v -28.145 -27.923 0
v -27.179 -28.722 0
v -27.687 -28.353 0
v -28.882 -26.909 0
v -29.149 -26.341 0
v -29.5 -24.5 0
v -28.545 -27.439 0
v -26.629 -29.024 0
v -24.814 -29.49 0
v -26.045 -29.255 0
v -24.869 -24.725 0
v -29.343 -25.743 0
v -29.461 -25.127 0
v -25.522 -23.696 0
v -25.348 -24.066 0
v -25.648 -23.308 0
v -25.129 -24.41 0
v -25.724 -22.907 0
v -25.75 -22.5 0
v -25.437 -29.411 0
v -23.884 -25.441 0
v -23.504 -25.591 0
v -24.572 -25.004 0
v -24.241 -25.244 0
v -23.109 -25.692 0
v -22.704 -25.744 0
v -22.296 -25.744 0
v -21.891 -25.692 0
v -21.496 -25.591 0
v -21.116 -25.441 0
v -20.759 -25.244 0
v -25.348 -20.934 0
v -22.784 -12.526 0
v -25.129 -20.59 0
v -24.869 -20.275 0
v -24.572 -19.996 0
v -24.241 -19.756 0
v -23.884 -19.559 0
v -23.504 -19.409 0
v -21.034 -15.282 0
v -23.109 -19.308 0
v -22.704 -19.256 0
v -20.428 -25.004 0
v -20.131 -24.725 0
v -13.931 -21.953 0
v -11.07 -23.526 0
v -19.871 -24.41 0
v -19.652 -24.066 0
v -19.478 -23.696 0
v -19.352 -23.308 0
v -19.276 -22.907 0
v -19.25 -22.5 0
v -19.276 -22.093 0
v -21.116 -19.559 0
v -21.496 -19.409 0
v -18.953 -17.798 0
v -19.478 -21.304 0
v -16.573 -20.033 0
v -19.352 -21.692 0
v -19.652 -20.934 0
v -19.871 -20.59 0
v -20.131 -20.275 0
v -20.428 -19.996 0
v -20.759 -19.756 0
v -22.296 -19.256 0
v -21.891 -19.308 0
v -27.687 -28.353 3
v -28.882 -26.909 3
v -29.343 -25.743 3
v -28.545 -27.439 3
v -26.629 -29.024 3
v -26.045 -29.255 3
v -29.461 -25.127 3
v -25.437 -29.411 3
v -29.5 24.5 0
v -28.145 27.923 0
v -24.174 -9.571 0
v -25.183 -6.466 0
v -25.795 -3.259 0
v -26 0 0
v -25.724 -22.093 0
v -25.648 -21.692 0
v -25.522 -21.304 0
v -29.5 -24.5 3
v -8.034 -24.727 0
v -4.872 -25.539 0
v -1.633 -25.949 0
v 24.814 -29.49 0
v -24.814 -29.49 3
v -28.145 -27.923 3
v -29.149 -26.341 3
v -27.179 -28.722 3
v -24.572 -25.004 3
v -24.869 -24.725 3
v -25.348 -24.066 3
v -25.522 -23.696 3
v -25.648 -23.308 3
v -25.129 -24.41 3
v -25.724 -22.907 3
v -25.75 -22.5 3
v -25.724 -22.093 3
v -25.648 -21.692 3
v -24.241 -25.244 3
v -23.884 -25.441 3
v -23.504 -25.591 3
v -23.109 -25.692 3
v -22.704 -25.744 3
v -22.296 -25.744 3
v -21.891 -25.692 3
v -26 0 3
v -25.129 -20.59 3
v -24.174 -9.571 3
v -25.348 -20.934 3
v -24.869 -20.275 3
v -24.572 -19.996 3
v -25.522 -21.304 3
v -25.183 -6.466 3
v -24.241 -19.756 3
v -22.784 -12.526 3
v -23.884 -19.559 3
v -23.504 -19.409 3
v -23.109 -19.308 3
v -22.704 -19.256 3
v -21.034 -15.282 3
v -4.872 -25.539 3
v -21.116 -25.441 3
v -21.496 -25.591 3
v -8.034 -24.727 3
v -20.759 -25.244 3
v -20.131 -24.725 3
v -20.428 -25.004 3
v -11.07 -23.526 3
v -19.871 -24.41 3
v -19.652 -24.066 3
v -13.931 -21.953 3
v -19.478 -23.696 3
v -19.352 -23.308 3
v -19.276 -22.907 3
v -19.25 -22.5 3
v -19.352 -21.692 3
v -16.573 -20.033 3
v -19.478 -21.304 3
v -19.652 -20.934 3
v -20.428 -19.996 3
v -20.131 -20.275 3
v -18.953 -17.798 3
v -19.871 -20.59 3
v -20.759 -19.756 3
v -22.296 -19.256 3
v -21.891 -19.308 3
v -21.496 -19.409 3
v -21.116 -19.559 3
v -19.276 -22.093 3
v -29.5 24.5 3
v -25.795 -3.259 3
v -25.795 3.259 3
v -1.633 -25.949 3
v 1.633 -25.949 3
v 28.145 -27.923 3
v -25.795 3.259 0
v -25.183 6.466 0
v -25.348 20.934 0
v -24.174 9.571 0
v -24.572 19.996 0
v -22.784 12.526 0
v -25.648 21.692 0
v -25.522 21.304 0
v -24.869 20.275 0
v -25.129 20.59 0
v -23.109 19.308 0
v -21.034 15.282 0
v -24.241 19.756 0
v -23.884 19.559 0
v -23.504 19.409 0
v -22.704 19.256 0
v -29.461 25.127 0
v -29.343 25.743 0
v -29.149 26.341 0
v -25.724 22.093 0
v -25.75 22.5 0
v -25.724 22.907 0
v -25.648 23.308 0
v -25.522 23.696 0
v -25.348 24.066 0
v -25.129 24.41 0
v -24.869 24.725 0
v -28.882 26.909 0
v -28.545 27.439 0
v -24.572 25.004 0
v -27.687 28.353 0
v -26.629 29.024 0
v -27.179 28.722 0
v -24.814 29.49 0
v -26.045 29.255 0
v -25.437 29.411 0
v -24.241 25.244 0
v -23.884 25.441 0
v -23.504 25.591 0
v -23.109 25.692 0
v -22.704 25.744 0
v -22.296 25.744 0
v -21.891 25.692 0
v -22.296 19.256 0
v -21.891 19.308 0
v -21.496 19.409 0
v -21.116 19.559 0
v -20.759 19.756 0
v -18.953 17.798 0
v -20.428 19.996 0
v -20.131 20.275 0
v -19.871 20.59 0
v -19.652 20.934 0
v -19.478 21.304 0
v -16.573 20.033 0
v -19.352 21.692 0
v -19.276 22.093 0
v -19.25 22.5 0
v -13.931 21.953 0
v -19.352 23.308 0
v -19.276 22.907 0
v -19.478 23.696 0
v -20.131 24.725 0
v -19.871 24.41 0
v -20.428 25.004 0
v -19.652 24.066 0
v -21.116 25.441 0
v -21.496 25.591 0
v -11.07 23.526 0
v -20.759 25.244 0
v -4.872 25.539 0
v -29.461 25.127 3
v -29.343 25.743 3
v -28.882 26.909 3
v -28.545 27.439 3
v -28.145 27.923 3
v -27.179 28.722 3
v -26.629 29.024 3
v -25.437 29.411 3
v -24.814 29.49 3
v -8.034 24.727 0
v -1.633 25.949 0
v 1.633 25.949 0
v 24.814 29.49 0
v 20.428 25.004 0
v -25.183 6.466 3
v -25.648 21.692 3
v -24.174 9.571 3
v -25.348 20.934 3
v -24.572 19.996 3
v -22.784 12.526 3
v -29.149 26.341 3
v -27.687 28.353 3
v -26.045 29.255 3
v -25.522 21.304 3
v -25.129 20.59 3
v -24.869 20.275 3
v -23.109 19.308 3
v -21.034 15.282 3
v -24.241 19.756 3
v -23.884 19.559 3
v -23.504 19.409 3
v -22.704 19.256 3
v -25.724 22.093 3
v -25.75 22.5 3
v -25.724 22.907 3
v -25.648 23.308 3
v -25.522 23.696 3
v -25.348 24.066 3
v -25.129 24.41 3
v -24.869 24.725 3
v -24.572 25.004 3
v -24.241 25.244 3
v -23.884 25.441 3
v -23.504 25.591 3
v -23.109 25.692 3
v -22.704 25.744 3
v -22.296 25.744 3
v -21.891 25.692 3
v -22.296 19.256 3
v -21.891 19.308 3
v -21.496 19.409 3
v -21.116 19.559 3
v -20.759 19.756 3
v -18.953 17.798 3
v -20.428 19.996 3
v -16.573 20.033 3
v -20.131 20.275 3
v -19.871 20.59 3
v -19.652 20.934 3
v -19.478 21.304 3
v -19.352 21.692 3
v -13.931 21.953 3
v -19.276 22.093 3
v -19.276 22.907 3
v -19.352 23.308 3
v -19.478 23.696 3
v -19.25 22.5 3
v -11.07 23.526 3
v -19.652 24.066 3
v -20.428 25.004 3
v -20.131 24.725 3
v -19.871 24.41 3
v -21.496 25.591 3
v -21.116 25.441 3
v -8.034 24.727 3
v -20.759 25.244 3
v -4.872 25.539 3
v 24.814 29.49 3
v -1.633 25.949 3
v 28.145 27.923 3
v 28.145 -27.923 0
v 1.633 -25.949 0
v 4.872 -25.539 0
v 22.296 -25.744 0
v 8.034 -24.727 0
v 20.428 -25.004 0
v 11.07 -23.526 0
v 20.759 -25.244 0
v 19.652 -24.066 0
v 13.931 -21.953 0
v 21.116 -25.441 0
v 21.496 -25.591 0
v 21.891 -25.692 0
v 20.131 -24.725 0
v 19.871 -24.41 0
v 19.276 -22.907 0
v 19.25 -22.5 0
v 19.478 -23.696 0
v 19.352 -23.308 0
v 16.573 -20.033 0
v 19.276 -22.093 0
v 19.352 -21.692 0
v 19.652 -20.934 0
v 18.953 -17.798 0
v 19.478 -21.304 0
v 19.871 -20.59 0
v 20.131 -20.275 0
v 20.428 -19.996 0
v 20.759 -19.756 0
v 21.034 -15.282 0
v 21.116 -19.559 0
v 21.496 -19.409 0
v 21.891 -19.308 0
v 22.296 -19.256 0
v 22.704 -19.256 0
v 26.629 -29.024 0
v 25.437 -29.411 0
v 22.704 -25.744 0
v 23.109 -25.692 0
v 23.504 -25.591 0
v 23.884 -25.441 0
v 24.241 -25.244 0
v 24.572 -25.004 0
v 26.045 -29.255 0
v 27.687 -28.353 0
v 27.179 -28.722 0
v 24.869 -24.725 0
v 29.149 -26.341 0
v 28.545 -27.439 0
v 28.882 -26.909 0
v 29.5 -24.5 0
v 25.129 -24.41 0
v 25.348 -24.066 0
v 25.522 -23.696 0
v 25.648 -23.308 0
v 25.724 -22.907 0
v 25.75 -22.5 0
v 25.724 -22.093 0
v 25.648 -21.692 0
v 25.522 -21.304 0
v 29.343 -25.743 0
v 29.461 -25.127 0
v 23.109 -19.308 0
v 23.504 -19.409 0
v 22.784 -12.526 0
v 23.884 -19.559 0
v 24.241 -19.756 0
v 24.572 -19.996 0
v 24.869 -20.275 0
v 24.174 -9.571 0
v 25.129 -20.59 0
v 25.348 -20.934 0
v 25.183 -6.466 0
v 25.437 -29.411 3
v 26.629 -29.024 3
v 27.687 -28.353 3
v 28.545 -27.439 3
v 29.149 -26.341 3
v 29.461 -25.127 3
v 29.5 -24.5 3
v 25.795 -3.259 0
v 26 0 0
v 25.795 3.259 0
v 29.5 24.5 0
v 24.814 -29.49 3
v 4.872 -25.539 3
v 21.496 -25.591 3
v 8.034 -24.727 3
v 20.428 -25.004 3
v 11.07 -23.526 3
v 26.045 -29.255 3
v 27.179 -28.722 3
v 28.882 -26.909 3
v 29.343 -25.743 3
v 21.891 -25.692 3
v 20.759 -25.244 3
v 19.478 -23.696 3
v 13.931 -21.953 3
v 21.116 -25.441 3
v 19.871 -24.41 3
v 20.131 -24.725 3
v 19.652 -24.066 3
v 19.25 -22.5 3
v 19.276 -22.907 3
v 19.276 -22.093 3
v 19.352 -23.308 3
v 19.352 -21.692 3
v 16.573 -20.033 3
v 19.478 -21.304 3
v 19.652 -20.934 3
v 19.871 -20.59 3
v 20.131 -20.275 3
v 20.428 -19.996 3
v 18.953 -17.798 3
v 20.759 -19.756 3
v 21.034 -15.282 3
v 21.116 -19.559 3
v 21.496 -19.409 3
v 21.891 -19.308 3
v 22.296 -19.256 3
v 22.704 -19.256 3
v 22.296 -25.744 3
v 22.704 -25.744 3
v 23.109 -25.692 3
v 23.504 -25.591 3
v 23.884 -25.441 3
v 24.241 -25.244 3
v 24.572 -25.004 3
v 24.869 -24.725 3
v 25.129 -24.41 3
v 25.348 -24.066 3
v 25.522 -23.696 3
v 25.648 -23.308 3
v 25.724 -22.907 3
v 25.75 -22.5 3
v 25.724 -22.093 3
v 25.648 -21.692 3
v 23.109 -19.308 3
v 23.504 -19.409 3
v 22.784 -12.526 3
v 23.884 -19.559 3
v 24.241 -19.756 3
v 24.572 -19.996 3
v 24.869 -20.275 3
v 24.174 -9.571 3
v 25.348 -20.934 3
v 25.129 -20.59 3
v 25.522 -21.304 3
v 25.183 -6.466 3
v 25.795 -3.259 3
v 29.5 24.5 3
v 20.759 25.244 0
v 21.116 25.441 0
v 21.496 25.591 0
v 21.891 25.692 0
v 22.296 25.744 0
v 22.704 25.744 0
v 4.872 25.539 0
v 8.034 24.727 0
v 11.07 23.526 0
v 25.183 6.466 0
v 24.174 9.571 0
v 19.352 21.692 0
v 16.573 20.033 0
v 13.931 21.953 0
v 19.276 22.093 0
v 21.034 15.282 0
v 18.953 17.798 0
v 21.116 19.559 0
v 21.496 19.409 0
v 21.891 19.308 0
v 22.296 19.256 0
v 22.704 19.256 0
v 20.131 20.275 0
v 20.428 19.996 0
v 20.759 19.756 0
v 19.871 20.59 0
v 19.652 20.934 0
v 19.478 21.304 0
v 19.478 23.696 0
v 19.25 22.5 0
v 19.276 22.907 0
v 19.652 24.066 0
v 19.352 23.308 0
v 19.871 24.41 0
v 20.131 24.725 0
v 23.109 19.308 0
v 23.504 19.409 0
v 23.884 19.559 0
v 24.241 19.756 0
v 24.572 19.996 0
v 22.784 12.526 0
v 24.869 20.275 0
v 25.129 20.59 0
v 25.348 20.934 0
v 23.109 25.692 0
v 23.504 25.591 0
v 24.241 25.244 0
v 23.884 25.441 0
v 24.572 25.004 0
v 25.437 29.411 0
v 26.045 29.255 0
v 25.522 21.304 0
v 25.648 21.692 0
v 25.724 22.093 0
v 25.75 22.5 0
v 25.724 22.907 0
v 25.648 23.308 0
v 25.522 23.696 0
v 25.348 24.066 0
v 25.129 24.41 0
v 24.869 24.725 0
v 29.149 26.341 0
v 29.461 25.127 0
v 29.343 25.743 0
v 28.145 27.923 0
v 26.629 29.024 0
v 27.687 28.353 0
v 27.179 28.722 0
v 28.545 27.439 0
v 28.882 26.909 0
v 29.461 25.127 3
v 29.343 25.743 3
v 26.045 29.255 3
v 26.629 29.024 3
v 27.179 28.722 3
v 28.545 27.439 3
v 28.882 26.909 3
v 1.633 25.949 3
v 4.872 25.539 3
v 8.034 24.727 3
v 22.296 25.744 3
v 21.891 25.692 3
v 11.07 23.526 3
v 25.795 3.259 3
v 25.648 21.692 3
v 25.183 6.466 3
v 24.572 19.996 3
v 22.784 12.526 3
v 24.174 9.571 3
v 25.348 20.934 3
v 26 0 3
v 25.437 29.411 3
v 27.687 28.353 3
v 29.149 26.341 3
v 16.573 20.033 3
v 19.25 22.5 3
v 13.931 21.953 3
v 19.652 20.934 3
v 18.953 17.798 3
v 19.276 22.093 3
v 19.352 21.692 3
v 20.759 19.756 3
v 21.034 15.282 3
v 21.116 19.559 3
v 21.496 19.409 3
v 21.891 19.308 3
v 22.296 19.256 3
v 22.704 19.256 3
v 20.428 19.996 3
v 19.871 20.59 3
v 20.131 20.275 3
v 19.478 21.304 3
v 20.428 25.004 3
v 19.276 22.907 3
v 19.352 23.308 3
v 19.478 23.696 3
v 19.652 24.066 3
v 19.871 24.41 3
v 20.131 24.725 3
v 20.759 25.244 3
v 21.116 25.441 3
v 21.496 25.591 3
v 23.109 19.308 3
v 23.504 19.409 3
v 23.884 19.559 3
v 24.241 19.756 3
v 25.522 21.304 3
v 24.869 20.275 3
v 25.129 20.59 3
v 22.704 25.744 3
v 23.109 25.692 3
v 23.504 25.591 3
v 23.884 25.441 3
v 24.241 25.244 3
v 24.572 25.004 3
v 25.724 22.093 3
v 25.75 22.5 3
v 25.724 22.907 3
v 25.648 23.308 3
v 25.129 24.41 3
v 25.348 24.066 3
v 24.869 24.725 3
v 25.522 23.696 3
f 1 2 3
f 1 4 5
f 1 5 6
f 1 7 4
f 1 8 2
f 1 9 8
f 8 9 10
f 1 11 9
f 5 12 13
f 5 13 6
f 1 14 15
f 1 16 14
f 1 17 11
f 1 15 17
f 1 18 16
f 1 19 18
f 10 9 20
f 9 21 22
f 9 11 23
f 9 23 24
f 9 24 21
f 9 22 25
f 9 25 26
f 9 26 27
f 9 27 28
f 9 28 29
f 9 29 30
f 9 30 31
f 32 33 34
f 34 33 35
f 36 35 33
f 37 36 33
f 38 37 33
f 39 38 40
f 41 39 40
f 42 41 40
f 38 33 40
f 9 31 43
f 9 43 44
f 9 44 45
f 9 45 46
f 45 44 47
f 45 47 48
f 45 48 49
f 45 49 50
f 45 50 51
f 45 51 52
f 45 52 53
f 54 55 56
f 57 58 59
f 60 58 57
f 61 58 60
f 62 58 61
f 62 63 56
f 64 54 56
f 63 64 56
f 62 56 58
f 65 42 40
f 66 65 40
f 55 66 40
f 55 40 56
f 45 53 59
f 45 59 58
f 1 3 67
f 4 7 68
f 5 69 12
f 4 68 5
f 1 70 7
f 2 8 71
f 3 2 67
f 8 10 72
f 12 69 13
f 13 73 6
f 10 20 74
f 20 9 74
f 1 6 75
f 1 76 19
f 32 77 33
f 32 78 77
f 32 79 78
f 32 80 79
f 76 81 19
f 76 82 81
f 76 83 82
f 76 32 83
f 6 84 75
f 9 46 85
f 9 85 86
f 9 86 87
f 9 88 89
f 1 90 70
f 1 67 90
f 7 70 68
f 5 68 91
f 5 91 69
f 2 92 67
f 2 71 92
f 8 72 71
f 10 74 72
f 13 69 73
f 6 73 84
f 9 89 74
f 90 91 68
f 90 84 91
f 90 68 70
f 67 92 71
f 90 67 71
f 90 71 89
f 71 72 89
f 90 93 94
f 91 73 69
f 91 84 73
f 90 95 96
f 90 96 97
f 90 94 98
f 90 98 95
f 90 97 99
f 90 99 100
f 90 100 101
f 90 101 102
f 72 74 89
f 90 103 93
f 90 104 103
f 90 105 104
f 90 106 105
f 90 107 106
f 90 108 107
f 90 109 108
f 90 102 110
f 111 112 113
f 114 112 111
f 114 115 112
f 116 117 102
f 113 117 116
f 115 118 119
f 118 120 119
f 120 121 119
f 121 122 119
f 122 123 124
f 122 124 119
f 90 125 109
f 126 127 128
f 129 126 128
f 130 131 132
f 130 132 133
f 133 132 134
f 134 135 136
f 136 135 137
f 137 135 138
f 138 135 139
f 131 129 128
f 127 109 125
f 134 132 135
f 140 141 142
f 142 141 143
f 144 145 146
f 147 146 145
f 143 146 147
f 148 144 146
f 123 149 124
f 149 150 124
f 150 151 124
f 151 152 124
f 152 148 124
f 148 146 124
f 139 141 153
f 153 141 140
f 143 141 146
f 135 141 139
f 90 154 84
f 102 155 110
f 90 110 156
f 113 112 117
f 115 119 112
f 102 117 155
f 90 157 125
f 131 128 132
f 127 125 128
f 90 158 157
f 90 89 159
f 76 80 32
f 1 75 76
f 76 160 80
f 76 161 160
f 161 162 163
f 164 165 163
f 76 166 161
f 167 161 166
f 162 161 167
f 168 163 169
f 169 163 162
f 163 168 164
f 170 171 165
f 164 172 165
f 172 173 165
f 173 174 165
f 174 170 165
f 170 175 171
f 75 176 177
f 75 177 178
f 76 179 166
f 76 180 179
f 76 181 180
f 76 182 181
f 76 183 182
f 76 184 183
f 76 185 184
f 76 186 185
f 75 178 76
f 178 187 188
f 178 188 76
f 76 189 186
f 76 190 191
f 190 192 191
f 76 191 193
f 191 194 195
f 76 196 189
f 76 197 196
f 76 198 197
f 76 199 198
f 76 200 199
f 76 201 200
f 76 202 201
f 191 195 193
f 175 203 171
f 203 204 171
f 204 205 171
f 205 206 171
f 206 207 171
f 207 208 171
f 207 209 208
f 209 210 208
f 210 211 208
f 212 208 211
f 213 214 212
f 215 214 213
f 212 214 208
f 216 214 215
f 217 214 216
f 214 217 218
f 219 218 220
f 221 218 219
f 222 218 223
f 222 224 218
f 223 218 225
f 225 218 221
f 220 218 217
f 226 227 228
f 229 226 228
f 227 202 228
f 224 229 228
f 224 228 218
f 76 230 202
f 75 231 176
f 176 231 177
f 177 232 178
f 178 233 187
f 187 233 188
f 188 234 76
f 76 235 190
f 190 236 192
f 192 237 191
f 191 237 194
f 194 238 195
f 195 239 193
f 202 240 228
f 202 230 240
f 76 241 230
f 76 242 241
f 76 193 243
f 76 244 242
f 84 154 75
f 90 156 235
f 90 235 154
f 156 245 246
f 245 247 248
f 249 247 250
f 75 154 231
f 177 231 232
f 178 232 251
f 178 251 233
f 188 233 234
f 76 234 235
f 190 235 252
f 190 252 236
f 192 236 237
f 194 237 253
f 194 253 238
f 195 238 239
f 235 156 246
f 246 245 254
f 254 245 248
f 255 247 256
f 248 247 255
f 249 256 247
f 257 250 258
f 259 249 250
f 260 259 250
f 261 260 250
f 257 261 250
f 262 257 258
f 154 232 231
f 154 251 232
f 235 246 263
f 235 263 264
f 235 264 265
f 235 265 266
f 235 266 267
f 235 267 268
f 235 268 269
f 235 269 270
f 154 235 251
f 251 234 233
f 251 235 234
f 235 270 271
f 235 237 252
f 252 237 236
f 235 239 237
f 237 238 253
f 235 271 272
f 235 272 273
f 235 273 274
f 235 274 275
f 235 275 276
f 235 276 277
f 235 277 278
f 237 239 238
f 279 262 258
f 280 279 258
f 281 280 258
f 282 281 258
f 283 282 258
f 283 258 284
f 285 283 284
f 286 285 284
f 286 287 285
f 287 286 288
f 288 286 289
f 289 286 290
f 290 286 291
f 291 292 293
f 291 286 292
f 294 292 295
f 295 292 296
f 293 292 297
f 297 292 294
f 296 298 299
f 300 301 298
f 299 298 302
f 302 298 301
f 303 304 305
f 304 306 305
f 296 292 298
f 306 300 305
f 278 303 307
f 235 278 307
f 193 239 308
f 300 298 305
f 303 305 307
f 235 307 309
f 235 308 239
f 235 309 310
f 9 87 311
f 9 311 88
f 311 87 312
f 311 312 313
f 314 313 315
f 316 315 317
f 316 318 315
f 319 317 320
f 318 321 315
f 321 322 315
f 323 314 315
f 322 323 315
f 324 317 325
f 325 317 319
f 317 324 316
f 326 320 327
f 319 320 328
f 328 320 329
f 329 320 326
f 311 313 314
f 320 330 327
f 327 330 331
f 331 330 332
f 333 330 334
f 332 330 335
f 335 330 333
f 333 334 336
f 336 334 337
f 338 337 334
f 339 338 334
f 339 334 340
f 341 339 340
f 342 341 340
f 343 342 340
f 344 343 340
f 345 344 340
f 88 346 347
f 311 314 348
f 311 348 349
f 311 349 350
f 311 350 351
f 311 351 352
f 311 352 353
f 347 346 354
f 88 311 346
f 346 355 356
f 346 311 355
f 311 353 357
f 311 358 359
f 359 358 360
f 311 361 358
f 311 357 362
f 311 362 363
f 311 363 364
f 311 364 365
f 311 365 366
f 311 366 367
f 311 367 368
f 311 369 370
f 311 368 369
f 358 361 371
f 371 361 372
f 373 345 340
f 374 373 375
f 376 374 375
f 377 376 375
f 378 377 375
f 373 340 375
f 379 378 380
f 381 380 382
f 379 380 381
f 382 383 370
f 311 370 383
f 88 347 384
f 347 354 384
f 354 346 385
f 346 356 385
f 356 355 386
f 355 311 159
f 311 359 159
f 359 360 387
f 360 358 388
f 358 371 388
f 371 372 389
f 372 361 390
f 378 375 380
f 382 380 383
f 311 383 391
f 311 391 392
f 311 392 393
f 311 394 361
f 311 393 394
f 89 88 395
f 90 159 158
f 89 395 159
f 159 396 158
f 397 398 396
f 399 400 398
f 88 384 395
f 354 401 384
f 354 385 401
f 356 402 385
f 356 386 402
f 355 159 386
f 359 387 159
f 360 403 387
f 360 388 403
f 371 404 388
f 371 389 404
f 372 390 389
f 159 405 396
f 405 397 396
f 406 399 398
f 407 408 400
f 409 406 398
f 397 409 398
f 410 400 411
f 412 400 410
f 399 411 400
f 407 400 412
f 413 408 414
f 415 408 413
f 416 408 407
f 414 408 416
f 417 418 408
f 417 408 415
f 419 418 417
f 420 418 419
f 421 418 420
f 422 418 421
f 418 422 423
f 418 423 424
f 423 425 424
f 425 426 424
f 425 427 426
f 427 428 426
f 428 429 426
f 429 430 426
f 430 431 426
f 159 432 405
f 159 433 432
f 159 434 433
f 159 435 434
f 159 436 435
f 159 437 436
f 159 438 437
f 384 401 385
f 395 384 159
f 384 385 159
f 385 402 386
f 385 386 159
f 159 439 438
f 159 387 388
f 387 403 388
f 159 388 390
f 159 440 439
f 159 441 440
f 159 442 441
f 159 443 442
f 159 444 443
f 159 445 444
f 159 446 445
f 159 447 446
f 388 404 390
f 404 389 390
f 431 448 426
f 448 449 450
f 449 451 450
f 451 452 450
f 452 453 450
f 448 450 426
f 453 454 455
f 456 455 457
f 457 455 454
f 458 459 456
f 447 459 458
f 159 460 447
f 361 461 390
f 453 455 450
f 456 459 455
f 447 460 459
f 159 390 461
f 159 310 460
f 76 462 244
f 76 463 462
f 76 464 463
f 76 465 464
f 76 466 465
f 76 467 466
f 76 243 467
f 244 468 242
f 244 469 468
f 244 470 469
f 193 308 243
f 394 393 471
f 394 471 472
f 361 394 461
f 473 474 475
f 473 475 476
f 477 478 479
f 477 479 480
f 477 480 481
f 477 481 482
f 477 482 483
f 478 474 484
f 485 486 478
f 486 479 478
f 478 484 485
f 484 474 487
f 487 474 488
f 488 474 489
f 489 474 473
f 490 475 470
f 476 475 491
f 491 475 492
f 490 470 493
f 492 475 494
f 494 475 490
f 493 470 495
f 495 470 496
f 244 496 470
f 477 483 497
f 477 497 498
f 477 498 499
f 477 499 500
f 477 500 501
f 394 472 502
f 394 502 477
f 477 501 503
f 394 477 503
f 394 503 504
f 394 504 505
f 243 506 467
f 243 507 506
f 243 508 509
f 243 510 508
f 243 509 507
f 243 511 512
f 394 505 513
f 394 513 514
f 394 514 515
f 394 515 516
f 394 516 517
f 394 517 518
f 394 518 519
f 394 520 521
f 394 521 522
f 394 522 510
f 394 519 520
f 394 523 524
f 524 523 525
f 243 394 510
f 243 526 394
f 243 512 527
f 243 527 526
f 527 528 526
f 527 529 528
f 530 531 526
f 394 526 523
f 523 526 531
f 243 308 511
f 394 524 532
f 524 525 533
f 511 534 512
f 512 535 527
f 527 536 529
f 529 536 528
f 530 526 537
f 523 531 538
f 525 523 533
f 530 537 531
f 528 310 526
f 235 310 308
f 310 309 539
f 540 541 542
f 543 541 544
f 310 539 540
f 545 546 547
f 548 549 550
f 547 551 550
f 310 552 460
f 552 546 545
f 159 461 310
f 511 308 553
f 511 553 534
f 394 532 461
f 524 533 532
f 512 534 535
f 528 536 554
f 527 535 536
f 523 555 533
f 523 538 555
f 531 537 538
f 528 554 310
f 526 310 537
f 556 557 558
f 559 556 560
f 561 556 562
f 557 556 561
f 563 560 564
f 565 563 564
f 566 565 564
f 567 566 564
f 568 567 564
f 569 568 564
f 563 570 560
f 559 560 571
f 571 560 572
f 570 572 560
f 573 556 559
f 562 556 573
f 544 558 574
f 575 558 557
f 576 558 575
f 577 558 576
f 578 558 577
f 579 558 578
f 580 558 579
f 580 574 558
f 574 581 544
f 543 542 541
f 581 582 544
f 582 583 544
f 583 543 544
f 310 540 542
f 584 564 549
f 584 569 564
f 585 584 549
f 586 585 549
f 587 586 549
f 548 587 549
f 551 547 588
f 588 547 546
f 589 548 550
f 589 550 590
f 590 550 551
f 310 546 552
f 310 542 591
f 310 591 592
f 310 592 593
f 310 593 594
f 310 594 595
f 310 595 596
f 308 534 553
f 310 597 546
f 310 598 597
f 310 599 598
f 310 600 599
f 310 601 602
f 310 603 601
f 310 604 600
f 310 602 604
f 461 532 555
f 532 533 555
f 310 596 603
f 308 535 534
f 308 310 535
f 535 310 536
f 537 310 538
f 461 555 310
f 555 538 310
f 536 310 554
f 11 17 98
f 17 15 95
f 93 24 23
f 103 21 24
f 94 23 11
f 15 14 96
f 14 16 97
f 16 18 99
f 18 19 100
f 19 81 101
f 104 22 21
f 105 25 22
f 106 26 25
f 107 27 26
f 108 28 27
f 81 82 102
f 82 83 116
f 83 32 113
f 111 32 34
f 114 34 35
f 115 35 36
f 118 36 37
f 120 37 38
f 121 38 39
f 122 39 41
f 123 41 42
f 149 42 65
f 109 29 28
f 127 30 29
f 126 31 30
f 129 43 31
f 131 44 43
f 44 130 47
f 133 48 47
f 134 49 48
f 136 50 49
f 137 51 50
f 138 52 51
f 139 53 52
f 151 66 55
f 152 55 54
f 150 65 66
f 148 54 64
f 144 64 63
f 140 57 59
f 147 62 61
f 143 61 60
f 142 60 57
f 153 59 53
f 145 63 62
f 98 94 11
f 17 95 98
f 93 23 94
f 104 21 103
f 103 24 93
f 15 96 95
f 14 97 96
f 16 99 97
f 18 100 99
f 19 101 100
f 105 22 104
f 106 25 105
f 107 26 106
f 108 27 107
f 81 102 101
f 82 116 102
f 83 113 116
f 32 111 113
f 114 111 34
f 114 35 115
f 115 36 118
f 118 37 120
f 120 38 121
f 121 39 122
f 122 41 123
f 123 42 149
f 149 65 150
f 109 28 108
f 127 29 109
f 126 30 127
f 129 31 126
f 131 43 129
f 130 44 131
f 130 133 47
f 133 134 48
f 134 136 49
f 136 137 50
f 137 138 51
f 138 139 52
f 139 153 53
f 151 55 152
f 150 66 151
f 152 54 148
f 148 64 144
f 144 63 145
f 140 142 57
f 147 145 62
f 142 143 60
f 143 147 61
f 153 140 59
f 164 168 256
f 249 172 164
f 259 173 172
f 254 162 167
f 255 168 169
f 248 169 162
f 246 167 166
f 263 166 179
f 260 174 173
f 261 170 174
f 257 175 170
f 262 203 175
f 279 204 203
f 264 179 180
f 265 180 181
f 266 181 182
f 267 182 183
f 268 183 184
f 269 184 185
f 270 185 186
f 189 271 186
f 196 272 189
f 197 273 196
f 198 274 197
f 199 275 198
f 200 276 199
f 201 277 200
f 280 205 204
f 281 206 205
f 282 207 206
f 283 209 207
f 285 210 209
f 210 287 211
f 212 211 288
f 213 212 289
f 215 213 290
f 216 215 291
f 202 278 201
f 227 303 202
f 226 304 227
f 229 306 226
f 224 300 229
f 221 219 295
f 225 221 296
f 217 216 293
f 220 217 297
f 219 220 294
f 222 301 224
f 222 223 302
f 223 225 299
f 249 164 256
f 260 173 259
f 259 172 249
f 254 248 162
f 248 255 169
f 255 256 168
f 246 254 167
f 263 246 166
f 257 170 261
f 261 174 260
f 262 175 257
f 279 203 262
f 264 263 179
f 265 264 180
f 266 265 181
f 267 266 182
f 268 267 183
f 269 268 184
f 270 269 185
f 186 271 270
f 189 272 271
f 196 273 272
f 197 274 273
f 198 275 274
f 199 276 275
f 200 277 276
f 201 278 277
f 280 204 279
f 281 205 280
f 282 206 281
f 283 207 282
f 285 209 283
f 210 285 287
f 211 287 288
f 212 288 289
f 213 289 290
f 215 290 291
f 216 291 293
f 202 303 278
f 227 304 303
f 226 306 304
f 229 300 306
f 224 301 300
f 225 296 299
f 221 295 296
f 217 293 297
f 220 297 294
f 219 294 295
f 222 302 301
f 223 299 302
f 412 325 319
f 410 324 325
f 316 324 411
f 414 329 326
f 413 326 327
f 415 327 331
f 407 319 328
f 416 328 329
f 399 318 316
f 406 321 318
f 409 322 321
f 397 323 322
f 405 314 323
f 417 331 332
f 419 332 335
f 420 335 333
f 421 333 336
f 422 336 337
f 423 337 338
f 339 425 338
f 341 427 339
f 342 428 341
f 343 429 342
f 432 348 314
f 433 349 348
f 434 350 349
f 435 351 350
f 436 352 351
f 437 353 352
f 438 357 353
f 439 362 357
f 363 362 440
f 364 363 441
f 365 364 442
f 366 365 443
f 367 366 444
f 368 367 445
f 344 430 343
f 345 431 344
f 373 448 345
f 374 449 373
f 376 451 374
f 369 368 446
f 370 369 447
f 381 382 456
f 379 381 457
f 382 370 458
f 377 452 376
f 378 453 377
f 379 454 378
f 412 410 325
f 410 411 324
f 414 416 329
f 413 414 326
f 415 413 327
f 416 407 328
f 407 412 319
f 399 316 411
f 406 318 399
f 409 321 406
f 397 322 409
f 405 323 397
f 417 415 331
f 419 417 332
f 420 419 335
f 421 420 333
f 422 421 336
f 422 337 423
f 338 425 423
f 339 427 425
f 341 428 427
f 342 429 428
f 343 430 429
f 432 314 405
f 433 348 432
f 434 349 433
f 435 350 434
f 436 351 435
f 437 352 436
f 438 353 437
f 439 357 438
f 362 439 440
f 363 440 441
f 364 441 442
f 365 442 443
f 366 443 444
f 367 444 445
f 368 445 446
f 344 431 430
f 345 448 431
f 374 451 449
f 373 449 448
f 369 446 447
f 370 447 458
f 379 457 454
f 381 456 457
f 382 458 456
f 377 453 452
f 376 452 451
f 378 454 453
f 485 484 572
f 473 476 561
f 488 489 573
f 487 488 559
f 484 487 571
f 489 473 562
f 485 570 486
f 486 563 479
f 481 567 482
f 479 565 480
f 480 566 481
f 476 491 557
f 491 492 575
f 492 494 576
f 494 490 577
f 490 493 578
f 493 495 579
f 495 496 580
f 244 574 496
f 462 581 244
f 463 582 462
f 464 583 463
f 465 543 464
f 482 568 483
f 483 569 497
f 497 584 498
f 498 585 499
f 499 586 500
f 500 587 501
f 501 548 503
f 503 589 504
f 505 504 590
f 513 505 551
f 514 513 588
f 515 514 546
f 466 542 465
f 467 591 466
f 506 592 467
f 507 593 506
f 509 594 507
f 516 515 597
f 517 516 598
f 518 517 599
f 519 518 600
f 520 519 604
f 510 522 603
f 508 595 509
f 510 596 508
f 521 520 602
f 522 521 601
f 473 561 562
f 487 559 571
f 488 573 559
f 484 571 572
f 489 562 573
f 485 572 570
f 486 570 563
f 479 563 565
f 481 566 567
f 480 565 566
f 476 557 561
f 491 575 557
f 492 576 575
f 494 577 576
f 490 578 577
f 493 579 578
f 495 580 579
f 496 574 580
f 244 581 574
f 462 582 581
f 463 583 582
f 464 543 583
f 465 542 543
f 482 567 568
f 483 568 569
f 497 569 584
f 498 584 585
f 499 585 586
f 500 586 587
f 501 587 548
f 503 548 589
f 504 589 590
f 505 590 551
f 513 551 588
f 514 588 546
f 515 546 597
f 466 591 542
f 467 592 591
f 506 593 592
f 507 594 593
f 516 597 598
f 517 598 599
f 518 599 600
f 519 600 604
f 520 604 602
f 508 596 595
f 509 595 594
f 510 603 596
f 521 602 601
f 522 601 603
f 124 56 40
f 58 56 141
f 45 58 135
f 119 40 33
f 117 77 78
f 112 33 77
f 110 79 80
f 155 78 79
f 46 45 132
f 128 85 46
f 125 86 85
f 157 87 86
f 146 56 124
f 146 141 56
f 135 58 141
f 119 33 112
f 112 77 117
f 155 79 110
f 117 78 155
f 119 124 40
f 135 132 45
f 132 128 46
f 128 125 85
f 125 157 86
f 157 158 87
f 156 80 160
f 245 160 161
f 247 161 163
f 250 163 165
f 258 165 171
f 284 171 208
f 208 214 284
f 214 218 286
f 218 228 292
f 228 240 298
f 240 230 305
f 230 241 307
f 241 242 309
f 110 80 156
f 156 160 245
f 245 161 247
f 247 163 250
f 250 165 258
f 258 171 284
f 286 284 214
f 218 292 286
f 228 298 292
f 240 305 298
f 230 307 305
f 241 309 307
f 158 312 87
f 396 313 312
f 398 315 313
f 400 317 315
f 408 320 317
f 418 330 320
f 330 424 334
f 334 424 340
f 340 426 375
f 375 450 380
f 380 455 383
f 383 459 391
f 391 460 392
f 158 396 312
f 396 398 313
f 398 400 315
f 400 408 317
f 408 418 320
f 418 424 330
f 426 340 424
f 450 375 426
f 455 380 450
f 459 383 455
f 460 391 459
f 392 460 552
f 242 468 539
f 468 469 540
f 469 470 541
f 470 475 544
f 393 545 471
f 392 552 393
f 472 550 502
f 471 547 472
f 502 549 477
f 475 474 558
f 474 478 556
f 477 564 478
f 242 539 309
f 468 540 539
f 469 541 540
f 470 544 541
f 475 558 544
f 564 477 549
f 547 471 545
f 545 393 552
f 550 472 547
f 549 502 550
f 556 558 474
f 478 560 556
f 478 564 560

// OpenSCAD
$fn = 50;

difference() {
	union() {
		hull() {
			translate(v = [-24.5, 24.5, 0]) {
				cylinder(h = 3, r = 5);
			}
			translate(v = [24.5, 24.5, 0]) {
				cylinder(h = 3, r = 5);
			}
			translate(v = [-24.5, -24.5, 0]) {
				cylinder(h = 3, r = 5);
			}
			translate(v = [24.5, -24.5, 0]) {
				cylinder(h = 3, r = 5);
			}
		}
	}
	union() {
		translate(v = [-22.5, -22.5, -100.0]) {
			cylinder(h = 200, r = 3.25);
		}
		translate(v = [-22.5, 22.5, -100.0]) {
			cylinder(h = 200, r = 3.25);
		}
		translate(v = [22.5, -22.5, -100.0]) {
			cylinder(h = 200, r = 3.25);
		}
		translate(v = [22.5, 22.5, -100.0]) {
			cylinder(h = 200, r = 3.25);
		}
		translate(v = [-22.5, -22.5, -100.0]) {
			cylinder(h = 200, r = 1.8);
		}
		translate(v = [-22.5, 22.5, -100.0]) {
			cylinder(h = 200, r = 1.8);
		}
		translate(v = [22.5, -22.5, -100.0]) {
			cylinder(h = 200, r = 1.8);
		}
		translate(v = [22.5, 22.5, -100.0]) {
			cylinder(h = 200, r = 1.8);
		}
		cylinder(h = 3, r = 26.0);
	}
}
